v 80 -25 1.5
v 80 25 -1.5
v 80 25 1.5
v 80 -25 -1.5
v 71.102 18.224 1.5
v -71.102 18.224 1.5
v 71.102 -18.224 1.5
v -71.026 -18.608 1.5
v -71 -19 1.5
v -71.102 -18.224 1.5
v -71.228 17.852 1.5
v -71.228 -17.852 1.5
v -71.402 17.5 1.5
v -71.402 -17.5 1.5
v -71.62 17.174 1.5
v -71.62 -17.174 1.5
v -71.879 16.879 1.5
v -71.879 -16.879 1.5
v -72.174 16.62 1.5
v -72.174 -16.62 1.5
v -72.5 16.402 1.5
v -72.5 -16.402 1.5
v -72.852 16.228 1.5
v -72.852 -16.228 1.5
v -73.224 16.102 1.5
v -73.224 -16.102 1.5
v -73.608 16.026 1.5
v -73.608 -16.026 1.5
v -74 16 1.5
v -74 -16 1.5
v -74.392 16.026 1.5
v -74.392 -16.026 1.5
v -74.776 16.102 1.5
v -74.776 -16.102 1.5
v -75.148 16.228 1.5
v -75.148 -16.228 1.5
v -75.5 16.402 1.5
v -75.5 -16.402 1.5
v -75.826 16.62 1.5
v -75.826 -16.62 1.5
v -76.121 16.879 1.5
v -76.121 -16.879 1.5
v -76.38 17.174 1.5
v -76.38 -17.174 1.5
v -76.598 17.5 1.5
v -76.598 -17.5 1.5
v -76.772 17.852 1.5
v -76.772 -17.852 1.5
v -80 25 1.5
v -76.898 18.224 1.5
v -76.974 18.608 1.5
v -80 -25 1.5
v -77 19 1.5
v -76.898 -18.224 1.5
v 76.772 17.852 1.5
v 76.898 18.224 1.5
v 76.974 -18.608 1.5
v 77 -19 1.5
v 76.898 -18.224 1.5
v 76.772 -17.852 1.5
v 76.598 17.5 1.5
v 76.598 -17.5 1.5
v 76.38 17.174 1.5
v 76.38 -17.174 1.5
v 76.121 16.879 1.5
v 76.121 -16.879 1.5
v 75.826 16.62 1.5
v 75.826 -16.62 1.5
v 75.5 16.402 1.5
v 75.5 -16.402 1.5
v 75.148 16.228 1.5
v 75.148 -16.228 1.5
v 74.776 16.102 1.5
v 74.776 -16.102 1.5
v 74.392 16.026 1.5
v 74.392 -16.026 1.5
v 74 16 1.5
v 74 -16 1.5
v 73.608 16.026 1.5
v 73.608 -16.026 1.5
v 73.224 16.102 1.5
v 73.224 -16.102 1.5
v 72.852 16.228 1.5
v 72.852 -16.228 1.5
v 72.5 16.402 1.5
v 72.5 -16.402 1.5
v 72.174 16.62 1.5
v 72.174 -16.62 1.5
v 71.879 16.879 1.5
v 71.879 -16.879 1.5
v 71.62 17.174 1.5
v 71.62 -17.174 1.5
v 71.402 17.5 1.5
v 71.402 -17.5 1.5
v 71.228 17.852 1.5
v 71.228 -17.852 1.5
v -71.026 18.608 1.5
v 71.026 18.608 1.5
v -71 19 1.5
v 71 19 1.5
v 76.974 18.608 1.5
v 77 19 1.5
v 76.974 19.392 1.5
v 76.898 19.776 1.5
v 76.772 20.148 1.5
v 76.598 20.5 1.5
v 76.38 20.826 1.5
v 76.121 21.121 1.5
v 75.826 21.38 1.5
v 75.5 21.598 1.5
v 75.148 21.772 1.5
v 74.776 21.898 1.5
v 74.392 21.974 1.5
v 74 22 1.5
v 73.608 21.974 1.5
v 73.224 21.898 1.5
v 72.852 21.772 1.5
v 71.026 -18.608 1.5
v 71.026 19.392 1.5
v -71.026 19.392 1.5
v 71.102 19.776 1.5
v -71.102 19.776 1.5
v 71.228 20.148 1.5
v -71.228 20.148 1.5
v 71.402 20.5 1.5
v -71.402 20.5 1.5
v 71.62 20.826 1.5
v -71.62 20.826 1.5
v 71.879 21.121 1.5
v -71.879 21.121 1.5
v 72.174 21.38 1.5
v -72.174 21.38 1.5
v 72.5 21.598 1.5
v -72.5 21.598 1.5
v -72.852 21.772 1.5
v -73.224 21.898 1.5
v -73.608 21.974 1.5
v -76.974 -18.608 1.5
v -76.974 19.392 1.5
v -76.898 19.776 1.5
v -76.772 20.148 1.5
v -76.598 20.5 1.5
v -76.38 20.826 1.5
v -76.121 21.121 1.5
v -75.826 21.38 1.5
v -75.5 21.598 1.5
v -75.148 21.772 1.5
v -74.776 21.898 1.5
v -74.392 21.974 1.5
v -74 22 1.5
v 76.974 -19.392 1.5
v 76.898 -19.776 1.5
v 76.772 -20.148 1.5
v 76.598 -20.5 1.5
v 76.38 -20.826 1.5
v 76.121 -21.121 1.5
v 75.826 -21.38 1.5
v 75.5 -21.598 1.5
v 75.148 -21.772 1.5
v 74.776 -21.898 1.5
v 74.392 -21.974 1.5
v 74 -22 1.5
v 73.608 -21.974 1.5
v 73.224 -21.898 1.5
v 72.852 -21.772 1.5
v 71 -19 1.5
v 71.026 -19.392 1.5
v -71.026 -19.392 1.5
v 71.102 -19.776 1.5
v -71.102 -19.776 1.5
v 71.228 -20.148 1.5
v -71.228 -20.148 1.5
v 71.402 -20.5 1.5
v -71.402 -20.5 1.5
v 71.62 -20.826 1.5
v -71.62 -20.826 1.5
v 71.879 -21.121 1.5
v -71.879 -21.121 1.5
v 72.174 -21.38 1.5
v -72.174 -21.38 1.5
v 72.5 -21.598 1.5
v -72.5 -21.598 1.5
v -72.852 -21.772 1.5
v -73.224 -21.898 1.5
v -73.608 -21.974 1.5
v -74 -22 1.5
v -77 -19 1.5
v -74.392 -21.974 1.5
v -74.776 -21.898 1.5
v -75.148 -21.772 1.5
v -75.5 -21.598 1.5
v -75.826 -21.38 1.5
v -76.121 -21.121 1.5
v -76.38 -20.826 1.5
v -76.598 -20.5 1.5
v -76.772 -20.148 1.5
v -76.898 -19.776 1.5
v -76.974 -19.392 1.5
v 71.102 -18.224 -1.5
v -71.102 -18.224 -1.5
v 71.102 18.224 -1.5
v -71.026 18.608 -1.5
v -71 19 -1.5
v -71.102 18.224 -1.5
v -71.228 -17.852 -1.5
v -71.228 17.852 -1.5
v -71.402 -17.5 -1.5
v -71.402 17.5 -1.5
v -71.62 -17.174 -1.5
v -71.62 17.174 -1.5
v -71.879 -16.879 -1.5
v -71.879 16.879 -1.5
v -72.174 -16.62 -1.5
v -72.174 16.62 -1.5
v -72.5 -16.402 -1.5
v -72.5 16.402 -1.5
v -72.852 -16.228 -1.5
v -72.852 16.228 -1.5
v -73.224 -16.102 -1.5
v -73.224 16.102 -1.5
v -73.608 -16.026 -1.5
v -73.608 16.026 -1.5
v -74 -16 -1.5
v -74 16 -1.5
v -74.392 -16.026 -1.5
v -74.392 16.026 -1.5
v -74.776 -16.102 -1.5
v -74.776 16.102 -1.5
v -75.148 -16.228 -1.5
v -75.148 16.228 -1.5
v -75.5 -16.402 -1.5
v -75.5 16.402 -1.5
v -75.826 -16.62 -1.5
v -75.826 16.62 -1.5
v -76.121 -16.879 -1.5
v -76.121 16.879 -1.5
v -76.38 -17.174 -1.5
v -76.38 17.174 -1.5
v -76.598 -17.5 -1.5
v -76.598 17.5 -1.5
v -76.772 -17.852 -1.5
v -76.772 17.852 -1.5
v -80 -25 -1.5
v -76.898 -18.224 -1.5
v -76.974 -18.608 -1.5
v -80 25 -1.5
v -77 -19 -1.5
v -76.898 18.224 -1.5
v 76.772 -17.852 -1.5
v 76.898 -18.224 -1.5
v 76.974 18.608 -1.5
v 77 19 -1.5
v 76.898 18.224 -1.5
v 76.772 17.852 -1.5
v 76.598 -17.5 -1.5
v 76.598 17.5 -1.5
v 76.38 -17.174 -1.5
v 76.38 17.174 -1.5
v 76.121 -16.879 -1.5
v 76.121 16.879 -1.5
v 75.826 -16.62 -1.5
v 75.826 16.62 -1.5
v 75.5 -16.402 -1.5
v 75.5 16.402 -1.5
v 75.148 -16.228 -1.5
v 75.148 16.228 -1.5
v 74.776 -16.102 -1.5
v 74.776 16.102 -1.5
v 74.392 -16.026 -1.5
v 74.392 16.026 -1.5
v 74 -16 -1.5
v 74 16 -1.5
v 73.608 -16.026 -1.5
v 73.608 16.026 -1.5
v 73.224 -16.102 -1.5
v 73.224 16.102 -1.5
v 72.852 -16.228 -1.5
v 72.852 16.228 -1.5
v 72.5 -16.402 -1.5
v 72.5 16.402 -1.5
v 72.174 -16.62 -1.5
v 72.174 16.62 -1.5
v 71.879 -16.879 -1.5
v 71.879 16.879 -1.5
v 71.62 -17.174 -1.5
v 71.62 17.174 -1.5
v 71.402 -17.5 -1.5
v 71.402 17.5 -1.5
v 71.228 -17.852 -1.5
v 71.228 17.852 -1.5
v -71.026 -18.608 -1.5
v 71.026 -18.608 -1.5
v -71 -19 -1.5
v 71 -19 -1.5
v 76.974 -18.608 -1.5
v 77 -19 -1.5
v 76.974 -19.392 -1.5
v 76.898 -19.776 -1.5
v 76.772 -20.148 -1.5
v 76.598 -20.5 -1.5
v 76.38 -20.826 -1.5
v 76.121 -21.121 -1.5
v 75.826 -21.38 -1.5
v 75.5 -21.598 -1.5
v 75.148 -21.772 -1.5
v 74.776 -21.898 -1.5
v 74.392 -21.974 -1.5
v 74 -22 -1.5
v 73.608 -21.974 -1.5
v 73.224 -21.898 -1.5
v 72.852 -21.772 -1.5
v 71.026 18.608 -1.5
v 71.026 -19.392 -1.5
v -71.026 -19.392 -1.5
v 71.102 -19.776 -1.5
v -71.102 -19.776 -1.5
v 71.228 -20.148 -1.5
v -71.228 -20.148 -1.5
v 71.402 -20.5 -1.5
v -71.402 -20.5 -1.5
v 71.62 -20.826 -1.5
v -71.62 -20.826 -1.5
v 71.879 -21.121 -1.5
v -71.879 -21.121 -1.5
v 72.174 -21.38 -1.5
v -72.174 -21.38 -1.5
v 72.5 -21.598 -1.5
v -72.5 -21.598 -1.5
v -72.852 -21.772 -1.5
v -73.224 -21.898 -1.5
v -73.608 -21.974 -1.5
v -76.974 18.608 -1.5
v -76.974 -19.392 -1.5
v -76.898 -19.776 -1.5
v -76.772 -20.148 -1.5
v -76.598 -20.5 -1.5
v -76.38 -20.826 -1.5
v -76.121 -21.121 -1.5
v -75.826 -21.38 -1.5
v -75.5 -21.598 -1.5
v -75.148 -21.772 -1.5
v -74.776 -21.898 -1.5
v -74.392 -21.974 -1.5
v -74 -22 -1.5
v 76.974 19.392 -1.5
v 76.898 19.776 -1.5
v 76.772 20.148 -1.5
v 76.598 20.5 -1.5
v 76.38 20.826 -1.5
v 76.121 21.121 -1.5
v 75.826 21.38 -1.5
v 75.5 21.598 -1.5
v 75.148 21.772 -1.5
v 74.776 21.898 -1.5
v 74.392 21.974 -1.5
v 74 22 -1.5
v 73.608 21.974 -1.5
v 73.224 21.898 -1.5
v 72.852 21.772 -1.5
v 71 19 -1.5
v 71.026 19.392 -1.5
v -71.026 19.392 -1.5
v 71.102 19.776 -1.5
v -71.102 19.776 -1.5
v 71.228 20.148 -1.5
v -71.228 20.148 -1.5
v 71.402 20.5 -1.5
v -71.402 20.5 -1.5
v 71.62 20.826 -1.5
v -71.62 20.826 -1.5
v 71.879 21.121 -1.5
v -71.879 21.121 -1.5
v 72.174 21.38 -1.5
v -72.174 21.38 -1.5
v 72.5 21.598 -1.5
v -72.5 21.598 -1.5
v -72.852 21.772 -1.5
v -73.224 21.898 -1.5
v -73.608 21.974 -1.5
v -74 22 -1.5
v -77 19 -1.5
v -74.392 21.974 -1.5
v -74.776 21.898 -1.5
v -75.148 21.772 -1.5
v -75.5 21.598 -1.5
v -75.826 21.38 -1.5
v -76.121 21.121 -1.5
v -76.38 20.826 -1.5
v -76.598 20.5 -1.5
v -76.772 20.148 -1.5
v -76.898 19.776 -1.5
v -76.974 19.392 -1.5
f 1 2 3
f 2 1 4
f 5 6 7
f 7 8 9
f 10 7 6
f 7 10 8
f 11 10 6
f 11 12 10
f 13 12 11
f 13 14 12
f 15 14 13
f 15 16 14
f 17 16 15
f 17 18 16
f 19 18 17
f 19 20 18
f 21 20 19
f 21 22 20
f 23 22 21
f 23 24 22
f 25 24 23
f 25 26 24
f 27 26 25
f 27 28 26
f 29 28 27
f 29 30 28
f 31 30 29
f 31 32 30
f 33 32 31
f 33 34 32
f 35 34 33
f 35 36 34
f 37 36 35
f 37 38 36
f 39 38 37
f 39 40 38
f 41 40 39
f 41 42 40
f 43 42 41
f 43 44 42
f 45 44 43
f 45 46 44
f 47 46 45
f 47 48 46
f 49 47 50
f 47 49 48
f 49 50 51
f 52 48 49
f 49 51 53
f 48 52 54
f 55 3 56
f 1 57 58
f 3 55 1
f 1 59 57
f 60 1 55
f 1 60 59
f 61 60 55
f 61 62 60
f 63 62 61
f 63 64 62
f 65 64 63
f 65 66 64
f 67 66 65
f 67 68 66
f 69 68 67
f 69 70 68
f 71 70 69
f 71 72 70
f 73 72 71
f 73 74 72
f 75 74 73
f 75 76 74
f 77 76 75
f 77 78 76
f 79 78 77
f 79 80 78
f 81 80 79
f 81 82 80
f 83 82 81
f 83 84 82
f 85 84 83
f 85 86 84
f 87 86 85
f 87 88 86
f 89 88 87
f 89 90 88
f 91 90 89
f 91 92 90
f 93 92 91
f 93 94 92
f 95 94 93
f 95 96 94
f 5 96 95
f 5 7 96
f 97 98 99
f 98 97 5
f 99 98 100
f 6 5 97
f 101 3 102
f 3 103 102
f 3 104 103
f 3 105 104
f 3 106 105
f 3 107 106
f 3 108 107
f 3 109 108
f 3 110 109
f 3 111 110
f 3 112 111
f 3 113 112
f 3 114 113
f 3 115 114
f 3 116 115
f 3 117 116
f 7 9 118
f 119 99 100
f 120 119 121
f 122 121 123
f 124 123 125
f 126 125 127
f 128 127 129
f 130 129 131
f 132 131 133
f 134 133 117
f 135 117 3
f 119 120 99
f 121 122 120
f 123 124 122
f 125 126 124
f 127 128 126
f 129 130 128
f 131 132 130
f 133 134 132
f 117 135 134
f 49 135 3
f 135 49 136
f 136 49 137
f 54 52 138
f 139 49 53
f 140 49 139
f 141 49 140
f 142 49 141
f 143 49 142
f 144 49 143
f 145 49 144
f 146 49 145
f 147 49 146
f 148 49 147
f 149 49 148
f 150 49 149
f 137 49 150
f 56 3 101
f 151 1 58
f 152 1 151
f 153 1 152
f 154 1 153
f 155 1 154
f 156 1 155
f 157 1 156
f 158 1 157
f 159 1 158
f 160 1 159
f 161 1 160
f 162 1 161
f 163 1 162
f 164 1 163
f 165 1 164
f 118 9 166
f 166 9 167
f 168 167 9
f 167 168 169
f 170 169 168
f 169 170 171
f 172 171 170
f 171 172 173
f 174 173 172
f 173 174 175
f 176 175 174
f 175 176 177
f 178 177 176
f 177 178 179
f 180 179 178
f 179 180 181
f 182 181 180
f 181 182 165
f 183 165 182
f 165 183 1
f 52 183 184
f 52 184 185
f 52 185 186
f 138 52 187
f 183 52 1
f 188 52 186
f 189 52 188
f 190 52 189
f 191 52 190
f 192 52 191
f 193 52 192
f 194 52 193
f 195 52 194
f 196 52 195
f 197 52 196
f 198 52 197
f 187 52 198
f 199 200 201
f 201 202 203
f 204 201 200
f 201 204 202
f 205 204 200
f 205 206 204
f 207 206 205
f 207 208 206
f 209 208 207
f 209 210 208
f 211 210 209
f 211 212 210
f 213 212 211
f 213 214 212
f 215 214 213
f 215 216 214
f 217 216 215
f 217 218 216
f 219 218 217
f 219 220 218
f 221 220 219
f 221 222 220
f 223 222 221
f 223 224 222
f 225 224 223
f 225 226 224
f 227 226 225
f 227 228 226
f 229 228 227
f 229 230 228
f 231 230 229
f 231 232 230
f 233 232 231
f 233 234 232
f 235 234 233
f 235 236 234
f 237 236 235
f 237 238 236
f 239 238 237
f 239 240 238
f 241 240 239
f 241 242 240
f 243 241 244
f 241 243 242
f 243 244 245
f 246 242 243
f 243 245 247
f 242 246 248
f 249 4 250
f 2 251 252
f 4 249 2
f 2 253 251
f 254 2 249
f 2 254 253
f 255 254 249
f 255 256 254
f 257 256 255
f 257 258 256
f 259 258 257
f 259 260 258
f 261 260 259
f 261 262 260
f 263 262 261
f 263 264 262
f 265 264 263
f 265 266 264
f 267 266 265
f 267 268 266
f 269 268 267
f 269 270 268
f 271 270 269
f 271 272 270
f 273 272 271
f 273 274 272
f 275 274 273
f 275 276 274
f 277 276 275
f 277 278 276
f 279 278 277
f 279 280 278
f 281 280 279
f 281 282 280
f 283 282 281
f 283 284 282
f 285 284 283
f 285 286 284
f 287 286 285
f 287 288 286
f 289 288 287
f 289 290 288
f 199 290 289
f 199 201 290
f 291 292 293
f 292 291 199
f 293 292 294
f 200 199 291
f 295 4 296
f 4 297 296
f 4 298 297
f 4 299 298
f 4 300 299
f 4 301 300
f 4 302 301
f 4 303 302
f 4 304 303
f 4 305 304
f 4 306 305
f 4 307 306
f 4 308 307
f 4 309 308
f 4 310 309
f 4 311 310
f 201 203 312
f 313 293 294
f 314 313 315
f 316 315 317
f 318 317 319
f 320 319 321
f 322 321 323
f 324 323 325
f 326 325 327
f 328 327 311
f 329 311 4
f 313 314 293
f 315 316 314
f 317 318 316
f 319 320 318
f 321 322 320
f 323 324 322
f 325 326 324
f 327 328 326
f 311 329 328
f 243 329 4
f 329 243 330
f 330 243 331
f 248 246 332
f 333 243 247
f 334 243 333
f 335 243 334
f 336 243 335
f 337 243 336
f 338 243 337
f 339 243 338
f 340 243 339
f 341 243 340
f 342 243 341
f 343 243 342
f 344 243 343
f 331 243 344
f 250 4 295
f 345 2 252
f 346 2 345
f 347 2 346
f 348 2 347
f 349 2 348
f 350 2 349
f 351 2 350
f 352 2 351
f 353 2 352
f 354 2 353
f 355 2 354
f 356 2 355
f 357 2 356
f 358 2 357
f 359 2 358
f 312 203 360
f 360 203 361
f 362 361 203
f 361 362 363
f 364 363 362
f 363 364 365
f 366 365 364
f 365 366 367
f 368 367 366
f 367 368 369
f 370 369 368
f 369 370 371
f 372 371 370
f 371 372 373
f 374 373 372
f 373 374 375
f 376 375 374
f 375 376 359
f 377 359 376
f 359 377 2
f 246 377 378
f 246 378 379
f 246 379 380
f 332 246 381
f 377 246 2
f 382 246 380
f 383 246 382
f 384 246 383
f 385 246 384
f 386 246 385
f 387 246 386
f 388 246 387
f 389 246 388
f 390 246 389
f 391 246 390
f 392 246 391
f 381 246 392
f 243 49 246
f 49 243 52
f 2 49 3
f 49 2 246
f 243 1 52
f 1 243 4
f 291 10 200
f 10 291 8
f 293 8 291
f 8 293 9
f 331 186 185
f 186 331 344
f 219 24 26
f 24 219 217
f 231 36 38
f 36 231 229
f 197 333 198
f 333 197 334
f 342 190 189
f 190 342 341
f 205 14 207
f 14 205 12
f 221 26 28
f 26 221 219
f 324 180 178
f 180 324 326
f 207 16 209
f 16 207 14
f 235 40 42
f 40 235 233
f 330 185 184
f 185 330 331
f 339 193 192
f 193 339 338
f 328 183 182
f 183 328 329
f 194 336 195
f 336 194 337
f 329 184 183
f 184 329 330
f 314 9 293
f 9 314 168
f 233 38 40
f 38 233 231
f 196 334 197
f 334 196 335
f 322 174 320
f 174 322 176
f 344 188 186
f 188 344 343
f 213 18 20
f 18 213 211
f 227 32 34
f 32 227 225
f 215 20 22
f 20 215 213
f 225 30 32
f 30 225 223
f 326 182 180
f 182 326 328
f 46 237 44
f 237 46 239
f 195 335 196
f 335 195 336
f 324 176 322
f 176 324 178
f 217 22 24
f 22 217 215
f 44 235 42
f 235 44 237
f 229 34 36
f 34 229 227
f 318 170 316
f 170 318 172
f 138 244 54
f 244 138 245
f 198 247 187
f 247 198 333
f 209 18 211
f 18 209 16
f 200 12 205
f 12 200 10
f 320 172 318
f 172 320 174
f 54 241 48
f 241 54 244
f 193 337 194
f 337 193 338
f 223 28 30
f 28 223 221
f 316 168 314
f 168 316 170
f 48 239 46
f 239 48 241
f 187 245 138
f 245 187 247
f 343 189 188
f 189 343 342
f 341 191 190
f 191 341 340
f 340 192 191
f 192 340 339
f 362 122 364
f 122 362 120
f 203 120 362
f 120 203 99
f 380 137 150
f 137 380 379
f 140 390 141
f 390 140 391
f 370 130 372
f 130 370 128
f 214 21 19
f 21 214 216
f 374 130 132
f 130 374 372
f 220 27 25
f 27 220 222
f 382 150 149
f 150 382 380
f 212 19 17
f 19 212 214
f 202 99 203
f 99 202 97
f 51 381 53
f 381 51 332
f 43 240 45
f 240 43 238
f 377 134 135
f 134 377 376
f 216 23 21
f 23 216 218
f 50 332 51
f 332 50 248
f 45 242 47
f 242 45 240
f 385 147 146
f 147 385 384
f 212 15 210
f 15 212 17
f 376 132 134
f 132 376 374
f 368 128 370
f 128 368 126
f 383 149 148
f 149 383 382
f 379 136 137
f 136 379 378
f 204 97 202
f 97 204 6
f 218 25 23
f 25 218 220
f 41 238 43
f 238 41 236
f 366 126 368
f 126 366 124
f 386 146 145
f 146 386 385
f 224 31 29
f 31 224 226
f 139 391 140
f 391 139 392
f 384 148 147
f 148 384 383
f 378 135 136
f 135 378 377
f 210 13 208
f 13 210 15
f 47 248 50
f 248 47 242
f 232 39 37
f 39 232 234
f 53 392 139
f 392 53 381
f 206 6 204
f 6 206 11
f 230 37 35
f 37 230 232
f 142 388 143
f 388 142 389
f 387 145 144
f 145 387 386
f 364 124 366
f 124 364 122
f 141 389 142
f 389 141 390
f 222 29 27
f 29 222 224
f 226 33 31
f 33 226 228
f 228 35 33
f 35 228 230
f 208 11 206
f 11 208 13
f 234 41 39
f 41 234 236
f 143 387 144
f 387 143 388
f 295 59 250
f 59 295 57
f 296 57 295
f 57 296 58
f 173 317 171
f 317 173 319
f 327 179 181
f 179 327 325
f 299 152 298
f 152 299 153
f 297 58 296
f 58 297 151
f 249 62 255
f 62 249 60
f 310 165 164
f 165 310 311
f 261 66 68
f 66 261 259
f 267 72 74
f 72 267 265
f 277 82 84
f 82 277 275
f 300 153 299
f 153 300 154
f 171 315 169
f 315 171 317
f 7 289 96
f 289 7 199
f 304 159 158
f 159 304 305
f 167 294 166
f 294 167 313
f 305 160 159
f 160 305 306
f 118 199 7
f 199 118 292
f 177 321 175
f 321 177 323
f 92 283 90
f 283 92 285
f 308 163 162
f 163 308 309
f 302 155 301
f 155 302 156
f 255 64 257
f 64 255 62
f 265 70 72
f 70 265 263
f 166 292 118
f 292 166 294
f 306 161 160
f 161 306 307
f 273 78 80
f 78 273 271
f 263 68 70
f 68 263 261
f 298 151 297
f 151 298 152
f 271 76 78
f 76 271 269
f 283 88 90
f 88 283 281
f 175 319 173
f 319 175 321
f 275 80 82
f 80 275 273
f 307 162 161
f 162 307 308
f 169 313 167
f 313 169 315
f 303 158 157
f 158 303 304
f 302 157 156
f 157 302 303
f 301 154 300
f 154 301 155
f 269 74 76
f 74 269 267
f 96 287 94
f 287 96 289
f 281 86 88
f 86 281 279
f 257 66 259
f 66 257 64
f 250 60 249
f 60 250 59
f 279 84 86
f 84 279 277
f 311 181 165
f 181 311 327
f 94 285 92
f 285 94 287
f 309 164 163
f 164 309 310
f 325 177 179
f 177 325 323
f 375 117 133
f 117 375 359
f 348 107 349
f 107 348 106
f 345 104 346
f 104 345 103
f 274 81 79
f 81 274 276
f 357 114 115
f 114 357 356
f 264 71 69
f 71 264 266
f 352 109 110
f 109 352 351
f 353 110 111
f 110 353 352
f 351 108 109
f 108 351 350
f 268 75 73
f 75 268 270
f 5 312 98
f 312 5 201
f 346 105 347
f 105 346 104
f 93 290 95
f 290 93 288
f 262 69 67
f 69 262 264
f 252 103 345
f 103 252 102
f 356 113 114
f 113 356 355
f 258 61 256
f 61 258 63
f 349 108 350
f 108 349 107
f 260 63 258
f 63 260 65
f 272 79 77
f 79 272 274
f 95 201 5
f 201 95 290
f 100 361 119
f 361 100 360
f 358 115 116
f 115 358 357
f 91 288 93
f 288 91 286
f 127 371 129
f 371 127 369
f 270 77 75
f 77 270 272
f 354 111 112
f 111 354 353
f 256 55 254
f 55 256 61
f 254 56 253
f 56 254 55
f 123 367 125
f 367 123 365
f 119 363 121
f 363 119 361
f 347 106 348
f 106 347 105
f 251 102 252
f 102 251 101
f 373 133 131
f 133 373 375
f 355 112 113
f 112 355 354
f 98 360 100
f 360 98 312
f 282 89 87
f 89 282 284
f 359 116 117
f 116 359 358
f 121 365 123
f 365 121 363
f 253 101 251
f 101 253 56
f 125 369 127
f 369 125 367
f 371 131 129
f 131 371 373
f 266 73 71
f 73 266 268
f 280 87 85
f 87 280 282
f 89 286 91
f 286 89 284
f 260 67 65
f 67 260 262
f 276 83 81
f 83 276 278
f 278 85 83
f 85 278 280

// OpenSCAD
// ========================================
// a 160 x 50 x 3 mm plate with four 6 mm holes
// NeuroCAD canonical IR; dimensions are millimetres
// ========================================
$fn = 48;

difference() {
  cube(size=[160, 50, 3], center=true);
  translate([-74, -19, 0]) {
    cylinder(r=3, h=5, center=true);
  }
  translate([-74, 19, 0]) {
    cylinder(r=3, h=5, center=true);
  }
  translate([74, -19, 0]) {
    cylinder(r=3, h=5, center=true);
  }
  translate([74, 19, 0]) {
    cylinder(r=3, h=5, center=true);
  }
}
